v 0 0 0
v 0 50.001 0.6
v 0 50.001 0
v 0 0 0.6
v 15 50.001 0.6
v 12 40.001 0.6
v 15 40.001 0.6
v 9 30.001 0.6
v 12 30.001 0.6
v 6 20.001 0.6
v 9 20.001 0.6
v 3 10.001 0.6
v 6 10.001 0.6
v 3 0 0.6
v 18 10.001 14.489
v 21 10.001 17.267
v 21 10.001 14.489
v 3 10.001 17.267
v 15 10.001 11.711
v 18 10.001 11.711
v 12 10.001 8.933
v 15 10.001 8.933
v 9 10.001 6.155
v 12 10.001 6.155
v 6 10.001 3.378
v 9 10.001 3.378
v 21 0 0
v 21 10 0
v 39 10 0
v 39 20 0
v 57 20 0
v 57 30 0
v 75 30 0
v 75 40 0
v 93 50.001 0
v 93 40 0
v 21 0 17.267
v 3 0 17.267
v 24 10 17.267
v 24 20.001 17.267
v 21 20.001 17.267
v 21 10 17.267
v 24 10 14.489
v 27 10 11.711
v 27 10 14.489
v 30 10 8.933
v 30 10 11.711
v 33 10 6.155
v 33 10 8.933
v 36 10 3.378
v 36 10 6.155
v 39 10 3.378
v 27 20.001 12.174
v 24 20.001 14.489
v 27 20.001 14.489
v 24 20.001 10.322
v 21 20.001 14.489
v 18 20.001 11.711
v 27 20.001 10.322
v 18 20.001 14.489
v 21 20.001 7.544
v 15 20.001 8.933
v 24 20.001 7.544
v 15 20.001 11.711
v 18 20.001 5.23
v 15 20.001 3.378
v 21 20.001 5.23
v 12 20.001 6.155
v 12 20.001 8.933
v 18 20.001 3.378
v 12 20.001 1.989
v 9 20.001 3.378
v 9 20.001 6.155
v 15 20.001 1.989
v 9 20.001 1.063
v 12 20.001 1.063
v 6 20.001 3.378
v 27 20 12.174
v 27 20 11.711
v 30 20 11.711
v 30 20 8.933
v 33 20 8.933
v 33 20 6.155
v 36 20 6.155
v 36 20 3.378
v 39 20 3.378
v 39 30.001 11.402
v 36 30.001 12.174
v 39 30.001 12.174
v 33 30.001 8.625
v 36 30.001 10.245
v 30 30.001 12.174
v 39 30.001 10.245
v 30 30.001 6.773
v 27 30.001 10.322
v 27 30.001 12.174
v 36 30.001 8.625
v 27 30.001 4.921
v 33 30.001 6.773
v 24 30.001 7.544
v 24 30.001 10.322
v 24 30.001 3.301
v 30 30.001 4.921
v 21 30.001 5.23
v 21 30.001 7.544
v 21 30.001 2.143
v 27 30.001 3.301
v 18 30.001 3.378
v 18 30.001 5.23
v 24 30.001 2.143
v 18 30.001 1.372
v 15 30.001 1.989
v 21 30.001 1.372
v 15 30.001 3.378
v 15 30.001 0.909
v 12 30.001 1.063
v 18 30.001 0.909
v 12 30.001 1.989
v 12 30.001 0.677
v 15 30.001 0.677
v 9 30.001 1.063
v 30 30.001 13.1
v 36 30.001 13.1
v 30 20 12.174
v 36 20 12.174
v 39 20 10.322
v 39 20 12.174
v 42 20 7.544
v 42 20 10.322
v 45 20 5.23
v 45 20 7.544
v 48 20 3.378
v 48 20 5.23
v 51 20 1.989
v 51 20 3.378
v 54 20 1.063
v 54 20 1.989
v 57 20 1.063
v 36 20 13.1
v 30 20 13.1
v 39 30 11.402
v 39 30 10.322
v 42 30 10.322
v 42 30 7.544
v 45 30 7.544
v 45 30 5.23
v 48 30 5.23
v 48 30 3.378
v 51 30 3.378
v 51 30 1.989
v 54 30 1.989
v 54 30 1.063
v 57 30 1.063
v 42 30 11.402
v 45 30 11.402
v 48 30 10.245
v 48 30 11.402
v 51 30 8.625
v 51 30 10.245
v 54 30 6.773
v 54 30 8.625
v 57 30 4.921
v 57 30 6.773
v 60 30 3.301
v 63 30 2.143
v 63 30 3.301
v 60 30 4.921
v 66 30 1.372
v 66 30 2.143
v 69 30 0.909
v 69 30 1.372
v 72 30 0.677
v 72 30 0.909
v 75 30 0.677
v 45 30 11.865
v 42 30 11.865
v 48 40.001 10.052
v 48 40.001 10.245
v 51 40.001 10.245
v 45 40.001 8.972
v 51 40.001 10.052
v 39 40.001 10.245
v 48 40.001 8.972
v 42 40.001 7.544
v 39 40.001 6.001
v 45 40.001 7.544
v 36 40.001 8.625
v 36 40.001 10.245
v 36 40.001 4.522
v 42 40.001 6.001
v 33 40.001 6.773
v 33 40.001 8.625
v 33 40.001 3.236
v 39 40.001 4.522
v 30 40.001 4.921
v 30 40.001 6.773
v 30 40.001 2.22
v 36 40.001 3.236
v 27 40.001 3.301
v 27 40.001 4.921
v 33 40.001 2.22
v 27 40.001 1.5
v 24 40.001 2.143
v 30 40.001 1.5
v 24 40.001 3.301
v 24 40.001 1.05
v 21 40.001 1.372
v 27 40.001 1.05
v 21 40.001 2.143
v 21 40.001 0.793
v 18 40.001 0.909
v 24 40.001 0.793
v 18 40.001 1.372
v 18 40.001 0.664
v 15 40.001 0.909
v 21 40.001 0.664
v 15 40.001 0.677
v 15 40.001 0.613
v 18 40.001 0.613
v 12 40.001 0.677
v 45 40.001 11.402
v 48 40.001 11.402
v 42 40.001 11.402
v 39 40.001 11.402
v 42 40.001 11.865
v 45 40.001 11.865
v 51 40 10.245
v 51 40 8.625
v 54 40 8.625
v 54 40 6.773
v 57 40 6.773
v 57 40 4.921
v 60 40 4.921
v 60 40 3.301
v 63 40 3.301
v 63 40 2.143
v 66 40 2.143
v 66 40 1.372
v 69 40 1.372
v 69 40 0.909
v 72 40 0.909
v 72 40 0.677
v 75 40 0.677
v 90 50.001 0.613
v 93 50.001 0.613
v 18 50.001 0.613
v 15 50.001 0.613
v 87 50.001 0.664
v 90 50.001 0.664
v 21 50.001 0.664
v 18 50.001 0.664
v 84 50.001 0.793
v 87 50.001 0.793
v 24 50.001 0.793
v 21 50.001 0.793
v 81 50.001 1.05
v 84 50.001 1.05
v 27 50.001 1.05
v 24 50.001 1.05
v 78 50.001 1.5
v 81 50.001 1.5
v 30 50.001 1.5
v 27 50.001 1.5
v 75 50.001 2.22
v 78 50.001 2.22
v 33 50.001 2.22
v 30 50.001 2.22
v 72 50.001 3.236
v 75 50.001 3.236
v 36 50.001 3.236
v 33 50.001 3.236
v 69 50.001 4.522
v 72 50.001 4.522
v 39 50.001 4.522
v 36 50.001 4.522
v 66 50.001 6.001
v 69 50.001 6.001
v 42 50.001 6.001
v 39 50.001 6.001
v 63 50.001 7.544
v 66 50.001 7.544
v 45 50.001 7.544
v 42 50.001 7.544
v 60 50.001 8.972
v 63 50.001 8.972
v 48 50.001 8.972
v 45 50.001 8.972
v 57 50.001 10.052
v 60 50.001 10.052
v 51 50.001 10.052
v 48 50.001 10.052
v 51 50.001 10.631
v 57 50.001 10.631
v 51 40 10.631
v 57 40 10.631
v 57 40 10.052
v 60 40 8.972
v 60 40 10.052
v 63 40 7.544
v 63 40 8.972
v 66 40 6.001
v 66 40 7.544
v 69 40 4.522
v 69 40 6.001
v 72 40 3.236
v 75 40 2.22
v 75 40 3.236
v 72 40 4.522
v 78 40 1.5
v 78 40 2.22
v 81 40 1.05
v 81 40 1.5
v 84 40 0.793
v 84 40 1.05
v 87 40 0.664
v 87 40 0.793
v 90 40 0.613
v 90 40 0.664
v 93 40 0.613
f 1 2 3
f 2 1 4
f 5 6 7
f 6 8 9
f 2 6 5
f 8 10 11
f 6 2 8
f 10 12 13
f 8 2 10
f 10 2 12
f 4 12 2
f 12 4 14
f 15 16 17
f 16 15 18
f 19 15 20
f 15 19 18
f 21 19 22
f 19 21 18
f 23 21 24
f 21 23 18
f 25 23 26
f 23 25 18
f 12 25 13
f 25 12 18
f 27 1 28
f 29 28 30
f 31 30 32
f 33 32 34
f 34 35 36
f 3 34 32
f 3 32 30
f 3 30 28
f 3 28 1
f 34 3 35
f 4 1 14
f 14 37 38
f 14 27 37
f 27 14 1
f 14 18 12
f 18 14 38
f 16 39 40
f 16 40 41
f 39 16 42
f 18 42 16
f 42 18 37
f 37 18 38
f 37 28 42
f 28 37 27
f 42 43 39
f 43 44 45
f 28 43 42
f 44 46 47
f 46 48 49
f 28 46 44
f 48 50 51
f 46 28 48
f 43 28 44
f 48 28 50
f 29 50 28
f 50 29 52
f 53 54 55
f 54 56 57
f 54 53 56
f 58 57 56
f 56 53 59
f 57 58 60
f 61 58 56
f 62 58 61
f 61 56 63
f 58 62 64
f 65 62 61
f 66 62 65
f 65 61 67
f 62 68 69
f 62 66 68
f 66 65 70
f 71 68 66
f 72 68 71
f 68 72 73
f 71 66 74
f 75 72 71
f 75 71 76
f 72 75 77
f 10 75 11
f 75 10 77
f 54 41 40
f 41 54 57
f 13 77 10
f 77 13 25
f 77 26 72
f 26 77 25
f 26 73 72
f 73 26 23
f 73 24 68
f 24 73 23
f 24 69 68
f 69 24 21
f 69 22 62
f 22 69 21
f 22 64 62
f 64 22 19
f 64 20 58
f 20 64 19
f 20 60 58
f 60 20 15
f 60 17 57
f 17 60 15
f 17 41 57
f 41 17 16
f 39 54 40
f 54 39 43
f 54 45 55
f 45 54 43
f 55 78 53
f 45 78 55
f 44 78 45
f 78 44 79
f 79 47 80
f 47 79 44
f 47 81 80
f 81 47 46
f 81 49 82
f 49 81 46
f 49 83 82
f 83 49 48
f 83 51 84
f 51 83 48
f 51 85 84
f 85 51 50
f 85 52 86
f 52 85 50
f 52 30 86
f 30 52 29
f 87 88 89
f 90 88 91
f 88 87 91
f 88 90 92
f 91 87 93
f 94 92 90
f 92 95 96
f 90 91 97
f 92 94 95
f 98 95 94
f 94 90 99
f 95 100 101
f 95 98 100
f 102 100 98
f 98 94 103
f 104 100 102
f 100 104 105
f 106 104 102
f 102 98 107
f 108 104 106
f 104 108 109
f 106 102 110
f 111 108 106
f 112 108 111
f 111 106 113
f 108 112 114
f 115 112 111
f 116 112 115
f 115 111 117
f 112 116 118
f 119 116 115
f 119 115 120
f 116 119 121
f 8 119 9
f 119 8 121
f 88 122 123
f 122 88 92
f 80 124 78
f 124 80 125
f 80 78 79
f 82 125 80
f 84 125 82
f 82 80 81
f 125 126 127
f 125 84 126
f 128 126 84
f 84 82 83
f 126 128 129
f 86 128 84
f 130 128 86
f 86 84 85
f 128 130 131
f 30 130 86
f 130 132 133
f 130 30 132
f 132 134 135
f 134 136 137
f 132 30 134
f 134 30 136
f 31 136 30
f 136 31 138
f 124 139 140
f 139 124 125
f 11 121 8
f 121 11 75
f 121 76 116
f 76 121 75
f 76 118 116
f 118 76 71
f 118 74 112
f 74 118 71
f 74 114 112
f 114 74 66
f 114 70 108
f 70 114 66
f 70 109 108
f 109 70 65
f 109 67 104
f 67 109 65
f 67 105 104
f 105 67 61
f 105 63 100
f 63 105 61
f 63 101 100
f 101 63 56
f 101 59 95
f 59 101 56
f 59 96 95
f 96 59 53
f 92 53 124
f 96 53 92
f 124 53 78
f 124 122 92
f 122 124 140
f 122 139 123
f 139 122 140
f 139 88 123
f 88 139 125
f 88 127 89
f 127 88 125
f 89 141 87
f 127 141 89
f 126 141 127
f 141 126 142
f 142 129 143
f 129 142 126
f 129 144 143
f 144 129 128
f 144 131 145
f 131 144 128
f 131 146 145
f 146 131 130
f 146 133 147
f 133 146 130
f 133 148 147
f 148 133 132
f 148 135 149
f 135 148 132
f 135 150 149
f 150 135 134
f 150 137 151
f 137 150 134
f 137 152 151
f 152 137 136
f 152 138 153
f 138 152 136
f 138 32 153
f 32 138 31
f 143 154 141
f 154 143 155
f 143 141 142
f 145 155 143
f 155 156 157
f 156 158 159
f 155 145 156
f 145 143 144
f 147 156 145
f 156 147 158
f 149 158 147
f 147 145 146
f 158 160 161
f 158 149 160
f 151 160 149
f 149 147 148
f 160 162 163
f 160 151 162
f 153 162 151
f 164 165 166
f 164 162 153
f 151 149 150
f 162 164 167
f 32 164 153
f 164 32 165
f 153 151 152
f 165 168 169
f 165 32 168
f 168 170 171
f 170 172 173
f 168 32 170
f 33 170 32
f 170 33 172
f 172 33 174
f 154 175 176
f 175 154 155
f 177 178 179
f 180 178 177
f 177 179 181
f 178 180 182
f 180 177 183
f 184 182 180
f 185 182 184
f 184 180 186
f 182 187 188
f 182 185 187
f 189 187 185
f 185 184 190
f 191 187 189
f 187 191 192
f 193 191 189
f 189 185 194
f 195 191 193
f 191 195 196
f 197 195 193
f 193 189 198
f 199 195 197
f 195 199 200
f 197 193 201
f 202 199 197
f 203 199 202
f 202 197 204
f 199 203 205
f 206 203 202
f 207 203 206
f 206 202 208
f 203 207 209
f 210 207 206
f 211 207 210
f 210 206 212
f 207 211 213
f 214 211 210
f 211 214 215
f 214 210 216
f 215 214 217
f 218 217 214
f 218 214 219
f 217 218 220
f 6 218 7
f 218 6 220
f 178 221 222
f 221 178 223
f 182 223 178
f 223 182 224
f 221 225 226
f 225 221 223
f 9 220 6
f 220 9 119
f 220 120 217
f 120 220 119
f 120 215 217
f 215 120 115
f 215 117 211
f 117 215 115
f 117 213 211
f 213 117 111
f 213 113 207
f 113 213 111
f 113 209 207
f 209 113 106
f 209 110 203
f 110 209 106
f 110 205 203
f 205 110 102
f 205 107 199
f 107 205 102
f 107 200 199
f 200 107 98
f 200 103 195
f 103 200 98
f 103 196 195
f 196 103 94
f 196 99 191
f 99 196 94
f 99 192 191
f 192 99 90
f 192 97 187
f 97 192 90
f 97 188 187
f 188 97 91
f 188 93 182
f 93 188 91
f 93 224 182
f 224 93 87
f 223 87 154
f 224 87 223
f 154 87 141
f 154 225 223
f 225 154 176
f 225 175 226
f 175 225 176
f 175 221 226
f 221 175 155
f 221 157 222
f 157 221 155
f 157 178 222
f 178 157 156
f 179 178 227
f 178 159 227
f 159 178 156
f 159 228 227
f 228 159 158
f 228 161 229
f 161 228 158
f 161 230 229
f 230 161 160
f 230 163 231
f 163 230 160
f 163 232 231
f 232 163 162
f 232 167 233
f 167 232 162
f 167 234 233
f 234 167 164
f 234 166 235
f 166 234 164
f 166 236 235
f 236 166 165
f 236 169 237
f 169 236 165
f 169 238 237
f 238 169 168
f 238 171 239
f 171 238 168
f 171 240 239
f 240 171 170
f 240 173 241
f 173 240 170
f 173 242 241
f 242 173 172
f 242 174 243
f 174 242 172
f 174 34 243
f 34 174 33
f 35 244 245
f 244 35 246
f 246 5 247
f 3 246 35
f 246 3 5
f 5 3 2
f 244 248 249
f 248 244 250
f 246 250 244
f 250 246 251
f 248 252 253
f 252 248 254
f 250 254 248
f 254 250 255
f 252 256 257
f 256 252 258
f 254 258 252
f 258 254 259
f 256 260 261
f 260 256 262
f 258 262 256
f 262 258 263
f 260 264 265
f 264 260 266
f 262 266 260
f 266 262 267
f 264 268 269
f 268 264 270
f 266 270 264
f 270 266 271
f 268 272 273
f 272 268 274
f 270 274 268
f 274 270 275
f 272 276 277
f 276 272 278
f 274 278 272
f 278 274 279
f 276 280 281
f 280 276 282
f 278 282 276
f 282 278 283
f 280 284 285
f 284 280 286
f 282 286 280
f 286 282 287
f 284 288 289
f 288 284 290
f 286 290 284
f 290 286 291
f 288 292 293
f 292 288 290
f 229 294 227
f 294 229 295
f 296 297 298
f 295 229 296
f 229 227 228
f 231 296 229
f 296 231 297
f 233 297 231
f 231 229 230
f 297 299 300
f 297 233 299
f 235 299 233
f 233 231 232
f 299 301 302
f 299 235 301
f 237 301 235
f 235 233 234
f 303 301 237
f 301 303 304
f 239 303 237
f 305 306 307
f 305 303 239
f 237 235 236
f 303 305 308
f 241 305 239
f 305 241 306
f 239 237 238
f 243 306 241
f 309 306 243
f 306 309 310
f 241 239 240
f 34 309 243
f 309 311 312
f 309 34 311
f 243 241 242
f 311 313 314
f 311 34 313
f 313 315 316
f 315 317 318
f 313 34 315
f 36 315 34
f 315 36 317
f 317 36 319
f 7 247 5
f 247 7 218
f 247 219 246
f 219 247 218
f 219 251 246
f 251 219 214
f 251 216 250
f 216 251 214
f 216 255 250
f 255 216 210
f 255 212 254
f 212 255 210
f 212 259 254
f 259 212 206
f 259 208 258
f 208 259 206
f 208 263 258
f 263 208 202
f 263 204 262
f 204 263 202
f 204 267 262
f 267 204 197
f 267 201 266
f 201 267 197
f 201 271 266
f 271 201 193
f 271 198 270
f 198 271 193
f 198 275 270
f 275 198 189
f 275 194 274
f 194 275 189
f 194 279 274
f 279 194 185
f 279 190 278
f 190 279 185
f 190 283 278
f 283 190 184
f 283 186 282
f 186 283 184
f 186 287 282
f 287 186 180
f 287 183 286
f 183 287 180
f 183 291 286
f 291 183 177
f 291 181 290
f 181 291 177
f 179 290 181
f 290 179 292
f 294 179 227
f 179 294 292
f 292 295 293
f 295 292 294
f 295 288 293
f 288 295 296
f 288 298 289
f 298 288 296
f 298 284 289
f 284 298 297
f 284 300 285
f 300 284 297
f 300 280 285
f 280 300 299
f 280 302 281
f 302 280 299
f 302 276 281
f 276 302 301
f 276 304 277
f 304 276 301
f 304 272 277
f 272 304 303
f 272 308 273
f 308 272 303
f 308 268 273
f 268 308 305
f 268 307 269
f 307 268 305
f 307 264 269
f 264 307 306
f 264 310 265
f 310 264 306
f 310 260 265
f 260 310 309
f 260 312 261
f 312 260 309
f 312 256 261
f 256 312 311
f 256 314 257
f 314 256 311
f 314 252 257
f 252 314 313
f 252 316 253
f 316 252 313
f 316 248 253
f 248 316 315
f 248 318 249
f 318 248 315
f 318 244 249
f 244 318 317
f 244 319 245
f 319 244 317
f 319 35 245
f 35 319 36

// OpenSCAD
//A model of the probability distributions of throwing
//different combinations of dice 
//File diceProbability.scad

base = .6; //added base piece for stability
size = [3, 10, 100]; //dimensions of the model
// if the following line is uncommented, shows 
// one 12 sided die vs 2, 6 sided ones, etc
//dice = [[1, 12], [2, 6], [3, 4], [4, 3], [6, 2]];

// if the following line is uncommented, shows results for
// six-sided dice- first one (uniform), then two (triangle), 
dice = [[1, 6], [2, 6], [3, 6], [4, 6], [5, 6]];

//accumulation function
function sum(a, i = 0) = (i >= len(a)) ? 0 : 
   a[i] + sum(a, i + 1);

function count(a, n, i = 0) = (i >= len(a)) ? 0 : 
   ((a[i] == n) ? 1 : 0) + count(a, n, i + 1);

module distribution(n = 2, d = 6) {
   combinations = [for(i = [0:pow(d, n) - 1]) 
      [for(j= [0:n - 1]) (floor(i / pow(d, j)) % d) + 1]];
   totals = [for(i = combinations) sum(i)];
   distribution = [for(i = [0:d * n]) count(totals, i)];
   echo(distribution);
   for(i = [0:d * n]) translate([i, 0, 0]) 
      cube([1.0001, 1.0001, 
      distribution[i] / (pow(d, n)) + base / size[2]]);
}

// scale the output 
scale(size) for(i = [0: len(dice)]) translate([0, i, 0]) distribution(dice[i][0], dice[i][1]);
// end model
